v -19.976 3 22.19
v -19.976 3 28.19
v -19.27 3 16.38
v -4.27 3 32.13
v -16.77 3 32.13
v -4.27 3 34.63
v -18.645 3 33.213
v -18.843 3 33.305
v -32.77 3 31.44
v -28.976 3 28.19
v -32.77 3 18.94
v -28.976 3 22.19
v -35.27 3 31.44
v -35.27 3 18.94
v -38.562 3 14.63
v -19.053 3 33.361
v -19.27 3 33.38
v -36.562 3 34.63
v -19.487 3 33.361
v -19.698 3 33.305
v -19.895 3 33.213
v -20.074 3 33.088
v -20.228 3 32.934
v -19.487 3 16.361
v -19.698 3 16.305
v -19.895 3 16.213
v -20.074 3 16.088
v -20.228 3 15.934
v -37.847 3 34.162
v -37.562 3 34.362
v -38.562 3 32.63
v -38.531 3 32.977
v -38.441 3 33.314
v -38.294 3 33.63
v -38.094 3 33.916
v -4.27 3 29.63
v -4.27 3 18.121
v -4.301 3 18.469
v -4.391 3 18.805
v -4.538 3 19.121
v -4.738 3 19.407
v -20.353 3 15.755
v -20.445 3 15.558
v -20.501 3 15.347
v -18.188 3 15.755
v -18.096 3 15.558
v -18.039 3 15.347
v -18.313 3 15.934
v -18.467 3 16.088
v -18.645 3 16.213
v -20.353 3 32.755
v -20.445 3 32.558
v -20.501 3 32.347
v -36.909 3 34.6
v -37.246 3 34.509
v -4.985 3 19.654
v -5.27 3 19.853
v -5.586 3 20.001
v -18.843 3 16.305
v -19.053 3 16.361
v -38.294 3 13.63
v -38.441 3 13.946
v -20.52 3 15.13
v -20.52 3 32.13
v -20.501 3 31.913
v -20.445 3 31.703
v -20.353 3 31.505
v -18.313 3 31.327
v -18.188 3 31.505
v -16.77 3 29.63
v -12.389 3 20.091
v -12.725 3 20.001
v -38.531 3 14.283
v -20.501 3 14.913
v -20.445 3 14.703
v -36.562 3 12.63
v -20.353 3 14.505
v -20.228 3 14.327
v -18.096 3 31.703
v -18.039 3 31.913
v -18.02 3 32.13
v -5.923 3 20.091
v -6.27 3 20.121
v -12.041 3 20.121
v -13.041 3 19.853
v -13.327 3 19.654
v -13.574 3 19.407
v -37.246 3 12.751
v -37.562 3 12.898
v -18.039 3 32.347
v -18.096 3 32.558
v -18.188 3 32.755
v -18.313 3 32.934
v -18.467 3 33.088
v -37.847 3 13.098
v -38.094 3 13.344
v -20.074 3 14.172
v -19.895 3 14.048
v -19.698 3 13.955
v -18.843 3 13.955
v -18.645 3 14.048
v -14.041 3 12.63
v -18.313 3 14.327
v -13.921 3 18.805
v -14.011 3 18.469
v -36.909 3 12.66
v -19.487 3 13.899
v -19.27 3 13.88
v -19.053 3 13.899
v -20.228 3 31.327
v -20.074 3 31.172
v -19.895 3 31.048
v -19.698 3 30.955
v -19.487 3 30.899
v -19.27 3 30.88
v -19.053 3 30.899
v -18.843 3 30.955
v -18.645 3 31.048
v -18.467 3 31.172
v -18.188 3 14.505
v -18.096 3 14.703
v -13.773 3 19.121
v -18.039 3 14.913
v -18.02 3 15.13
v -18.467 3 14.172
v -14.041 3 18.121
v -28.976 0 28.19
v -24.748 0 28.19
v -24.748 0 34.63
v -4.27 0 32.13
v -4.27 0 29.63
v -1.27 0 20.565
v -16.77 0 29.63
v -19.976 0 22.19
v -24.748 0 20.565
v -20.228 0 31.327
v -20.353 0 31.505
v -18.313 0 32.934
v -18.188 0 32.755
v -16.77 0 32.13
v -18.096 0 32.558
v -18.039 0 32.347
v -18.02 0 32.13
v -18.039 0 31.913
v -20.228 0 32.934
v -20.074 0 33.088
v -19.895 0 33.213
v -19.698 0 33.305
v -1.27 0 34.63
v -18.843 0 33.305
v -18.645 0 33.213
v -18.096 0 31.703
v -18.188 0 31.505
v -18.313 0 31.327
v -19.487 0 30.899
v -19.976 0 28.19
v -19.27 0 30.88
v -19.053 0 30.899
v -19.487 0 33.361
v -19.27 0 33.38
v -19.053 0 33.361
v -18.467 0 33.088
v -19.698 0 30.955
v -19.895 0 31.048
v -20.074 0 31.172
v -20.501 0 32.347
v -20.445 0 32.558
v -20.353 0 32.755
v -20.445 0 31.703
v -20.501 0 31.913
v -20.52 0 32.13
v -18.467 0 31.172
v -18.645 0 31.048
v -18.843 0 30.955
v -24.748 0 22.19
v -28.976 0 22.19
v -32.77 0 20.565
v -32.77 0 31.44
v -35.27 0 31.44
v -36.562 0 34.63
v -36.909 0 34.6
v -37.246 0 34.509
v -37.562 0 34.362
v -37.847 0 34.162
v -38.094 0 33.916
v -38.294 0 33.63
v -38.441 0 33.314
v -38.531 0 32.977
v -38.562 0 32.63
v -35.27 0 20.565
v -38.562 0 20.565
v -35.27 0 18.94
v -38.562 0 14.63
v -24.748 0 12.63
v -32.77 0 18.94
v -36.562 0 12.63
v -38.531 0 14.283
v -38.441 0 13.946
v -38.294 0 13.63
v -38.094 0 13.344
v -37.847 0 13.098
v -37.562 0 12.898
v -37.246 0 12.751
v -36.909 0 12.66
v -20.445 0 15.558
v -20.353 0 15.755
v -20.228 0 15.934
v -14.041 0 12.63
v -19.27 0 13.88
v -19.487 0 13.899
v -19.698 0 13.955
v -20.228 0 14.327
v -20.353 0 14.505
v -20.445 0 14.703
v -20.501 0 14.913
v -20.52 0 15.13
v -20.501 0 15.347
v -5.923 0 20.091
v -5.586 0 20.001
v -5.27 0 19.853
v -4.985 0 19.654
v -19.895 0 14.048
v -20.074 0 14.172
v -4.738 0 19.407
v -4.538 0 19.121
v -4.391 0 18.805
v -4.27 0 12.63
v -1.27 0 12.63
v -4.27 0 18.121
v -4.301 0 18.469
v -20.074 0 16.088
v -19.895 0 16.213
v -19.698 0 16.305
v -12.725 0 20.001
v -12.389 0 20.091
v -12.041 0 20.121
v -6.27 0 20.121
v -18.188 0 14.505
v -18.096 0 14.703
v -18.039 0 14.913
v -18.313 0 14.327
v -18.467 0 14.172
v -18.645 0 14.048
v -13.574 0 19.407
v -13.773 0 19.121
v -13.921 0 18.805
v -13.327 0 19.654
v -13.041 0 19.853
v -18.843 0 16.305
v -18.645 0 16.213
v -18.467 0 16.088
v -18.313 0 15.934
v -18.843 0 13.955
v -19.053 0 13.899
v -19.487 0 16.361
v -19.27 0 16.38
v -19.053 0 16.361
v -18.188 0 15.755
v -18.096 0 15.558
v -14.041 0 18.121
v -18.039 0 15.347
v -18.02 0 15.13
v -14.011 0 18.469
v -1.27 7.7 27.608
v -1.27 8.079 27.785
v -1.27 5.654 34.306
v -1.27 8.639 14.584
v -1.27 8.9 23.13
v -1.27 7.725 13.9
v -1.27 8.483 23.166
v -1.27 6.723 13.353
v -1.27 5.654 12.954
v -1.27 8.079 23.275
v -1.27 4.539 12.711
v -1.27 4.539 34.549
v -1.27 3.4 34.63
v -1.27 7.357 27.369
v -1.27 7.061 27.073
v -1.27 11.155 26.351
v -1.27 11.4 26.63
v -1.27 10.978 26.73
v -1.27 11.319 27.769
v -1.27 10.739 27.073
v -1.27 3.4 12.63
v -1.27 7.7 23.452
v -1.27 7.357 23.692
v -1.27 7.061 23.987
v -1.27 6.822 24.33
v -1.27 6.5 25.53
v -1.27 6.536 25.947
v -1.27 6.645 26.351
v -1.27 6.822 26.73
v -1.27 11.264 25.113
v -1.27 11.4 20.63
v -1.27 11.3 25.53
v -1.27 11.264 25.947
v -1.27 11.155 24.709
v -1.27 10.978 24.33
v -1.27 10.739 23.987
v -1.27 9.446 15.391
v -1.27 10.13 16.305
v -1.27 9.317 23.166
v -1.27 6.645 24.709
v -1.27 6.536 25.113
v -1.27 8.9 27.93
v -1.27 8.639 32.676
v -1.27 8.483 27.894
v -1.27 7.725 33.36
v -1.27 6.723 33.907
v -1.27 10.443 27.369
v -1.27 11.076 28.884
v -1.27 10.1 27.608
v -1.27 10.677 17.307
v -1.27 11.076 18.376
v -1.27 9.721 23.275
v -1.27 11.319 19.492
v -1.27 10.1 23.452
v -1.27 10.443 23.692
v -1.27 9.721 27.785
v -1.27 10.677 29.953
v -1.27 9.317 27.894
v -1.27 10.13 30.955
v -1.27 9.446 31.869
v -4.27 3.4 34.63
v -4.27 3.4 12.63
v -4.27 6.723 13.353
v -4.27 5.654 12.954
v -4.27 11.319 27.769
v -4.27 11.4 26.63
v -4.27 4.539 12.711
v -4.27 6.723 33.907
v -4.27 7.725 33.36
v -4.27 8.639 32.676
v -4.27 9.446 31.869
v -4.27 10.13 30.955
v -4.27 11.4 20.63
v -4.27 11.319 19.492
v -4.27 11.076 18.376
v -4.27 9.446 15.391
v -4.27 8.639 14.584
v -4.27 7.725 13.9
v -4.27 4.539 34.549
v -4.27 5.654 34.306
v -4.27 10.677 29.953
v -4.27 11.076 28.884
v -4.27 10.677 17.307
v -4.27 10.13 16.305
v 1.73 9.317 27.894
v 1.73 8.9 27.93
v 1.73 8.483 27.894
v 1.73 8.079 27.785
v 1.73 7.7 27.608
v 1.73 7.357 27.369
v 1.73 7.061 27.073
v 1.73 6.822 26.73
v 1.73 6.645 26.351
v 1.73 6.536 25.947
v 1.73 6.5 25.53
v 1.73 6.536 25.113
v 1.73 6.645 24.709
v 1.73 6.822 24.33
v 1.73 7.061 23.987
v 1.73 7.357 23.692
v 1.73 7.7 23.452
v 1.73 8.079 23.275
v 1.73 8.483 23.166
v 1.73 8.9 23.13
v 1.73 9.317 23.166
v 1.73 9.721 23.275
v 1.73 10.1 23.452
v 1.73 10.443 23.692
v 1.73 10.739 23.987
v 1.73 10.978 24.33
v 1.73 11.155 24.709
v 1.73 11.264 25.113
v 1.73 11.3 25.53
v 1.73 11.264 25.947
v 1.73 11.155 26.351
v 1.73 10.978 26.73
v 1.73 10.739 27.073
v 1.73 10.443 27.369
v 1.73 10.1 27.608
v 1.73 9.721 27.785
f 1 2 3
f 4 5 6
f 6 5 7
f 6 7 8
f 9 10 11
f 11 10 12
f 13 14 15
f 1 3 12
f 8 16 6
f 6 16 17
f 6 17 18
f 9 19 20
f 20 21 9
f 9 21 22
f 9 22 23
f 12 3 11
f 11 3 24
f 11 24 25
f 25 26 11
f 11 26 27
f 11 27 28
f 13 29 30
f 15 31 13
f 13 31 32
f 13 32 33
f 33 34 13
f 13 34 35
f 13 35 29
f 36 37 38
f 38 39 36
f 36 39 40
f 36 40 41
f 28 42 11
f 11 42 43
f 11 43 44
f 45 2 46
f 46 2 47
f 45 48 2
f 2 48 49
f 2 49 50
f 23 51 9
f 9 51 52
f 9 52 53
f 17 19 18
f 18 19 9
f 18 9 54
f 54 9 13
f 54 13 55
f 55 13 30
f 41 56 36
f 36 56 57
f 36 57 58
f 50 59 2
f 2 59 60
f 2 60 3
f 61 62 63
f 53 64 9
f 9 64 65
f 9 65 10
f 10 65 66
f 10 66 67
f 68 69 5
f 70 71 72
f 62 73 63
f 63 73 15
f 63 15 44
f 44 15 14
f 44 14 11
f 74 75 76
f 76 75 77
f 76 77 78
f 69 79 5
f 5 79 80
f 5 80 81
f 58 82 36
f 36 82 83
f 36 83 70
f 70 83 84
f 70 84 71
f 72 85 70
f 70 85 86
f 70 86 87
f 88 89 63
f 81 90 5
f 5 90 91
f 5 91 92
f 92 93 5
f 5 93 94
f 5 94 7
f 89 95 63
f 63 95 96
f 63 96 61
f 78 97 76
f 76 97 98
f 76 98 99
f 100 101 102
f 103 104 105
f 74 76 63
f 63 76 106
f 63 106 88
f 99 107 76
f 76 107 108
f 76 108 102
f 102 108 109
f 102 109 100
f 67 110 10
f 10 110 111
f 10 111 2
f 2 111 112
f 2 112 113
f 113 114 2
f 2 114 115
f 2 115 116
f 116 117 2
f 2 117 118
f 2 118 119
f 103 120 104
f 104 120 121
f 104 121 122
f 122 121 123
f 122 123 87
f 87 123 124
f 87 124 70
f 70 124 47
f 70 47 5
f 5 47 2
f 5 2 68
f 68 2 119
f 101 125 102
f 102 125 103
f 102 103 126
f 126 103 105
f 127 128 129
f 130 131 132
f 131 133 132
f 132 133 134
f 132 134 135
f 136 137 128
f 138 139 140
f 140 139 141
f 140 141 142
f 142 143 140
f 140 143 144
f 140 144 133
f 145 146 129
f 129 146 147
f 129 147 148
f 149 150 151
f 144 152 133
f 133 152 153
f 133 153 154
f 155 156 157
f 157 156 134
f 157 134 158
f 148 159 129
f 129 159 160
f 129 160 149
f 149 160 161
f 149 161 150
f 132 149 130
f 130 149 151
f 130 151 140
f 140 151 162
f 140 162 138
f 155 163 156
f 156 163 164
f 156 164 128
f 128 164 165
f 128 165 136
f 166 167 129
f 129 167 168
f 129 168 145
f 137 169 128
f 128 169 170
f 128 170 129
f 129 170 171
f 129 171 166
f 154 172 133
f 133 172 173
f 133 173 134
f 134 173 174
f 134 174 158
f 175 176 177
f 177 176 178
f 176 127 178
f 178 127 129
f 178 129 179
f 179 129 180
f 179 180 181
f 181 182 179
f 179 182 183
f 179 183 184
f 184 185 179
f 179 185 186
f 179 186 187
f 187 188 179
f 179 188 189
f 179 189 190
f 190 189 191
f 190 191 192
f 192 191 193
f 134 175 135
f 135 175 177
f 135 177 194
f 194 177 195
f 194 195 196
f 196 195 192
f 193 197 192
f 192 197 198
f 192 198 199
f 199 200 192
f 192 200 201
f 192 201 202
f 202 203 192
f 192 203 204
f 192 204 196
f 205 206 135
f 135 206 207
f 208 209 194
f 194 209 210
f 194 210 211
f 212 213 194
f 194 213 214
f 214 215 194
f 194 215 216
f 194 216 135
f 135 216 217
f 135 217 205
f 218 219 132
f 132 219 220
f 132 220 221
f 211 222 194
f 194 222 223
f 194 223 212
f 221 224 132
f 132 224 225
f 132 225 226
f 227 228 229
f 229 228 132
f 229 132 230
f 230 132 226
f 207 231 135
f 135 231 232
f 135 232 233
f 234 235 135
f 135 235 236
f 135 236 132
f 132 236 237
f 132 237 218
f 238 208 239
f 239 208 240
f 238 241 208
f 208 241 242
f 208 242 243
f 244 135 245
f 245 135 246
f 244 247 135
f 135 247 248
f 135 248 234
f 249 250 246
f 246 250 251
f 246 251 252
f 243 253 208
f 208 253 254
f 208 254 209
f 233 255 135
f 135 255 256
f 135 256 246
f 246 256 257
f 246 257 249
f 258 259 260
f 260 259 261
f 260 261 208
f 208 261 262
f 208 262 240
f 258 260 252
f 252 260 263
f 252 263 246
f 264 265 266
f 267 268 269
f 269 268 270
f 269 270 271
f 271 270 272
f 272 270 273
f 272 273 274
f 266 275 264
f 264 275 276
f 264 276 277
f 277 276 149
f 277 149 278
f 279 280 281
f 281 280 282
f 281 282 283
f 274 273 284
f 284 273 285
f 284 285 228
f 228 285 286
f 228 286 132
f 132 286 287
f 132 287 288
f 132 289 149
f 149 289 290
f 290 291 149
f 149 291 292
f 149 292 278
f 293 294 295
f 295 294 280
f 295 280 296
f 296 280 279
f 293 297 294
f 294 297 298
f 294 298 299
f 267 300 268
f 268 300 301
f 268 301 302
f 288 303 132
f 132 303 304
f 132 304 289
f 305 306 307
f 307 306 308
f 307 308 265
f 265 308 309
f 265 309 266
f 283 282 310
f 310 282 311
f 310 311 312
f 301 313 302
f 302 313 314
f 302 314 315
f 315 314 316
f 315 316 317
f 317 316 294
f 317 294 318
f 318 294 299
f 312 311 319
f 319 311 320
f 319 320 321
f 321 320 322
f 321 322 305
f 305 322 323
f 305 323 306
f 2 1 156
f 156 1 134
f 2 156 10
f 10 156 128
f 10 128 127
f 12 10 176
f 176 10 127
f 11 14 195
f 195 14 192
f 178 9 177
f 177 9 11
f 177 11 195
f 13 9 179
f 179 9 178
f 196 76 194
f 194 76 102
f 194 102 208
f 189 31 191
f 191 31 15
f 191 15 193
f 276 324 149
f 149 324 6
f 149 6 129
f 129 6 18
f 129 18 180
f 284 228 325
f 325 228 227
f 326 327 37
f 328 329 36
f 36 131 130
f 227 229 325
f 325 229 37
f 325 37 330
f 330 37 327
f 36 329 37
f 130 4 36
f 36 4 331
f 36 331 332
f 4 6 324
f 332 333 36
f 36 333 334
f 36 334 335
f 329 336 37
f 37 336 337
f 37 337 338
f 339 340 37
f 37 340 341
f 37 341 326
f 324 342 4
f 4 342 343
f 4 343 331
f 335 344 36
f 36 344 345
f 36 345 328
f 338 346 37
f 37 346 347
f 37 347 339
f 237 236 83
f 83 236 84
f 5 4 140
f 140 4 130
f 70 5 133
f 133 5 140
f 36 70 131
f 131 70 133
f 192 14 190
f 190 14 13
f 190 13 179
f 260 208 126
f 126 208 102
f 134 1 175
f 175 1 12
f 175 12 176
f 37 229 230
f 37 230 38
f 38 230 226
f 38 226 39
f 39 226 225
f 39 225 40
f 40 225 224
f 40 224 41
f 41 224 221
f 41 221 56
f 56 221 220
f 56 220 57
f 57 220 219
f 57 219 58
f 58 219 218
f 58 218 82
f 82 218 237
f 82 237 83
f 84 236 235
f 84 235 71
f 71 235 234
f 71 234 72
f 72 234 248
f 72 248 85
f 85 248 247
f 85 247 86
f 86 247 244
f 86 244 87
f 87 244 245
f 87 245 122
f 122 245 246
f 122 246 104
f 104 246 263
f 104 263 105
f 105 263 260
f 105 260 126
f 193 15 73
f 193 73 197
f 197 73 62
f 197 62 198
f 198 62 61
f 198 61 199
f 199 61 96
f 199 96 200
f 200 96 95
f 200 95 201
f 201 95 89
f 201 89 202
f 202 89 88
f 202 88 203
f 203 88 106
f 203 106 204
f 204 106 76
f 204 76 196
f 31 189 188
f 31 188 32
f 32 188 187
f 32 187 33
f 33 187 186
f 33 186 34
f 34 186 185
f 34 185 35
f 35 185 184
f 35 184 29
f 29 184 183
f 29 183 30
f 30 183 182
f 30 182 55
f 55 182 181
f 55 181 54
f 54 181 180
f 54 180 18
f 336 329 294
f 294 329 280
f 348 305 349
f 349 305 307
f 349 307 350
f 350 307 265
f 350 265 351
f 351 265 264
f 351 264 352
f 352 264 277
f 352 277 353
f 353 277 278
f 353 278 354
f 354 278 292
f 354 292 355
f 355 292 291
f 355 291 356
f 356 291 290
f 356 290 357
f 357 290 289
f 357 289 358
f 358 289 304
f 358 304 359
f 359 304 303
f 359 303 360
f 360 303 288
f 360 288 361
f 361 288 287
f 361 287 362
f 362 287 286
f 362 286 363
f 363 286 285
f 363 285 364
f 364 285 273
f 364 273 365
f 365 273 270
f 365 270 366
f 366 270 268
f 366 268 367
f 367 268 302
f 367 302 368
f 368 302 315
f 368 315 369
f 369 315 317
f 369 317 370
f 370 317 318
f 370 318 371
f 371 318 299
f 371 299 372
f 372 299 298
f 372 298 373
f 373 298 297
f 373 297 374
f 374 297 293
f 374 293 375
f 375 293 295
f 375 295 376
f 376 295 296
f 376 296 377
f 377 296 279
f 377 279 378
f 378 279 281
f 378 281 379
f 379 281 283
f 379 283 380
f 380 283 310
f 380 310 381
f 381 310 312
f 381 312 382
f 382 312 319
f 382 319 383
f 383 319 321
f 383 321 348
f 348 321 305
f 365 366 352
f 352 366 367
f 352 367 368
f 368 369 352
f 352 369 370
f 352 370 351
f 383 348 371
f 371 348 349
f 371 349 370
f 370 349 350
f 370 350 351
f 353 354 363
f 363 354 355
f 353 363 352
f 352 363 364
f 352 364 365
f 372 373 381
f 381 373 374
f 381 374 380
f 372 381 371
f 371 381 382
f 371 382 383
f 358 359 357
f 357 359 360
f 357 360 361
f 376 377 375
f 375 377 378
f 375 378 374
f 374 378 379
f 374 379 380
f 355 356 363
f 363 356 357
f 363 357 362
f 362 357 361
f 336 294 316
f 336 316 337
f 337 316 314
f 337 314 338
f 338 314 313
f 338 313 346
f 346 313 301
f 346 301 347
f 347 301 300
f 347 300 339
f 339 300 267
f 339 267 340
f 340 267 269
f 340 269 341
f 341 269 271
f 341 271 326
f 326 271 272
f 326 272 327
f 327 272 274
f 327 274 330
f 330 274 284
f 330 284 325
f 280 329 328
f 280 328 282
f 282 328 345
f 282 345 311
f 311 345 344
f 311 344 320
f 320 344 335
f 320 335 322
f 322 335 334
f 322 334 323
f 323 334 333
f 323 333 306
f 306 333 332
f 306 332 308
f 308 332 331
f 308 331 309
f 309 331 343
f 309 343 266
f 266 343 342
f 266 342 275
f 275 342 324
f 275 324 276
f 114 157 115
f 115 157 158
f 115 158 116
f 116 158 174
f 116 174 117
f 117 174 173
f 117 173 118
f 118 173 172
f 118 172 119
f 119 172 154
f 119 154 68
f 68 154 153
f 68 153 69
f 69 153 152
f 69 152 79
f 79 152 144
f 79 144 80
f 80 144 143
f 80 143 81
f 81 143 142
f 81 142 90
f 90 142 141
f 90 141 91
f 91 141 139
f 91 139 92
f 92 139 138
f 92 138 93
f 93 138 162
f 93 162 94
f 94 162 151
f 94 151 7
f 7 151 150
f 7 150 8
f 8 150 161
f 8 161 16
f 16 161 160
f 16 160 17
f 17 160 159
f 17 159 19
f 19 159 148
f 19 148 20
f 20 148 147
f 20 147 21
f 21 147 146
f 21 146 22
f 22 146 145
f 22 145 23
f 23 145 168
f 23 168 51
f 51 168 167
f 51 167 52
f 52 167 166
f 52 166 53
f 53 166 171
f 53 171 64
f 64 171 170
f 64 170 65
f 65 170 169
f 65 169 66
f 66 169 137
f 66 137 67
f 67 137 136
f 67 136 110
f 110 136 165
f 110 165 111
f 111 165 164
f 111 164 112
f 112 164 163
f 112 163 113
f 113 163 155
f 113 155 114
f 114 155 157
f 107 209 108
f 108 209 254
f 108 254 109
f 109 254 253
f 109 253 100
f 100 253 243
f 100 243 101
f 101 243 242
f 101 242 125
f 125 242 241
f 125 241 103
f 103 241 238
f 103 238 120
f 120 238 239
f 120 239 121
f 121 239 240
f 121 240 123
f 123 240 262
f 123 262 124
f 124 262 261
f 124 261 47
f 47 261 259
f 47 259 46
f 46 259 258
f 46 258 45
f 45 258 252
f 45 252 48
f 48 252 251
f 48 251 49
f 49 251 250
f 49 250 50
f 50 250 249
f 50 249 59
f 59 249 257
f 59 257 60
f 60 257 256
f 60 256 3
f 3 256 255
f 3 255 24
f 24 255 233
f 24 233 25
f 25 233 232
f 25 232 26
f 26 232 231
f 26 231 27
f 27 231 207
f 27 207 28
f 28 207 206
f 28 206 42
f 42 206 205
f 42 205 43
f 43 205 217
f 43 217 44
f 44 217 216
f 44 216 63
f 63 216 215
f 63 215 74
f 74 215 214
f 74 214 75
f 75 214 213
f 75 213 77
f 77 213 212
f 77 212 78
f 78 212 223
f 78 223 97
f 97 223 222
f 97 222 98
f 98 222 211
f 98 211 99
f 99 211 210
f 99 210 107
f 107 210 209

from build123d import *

# Parameters (mm, degrees)
SKETCH1_W           = 12.5
SKETCH1_H           = 2.5
SKETCH1_W_2         = 2.5
SKETCH1_H_2         = 12.5
SKETCH1_W_3         = 9
SKETCH1_H_3         = 6
BOSS_EXTRUDE1_DEPTH = 3
FILLET1_R           = 2
SKETCH1_4_W         = 3
SKETCH1_4_H         = 22
BOSS_EXTRUDE2_DEPTH = 11.4
SKETCH2_R           = 2.4
BOSS_EXTRUDE3_DEPTH = 3
FILLET2_R           = 8
SKETCH1_7_R         = 1.25
CUT_EXTRUDE2_DEPTH  = 54.067966791


with BuildPart() as part:
    # Sketch1 → Boss-Extrude1 (new body)
    with BuildSketch(Plane(origin=(0, 0, 0), x_dir=(1, 0, 0), z_dir=(0, 1, 0))):
        Polygon((-38.561763486, -34.630037485), (-1.270220731, -34.630037485), (-1.270220731, -12.630037485), (-4.270220731, -12.630037485), (-4.270220731, -20.12144272), (-14.041444449, -20.12144272), (-14.041444449, -12.630037485), (-38.561763486, -12.630037485), align=None)
        with Locations((-10.520220731, -30.880037485)):
            Rectangle(SKETCH1_W, SKETCH1_H, mode=Mode.SUBTRACT)
        with Locations((-34.020220731, -25.190037485)):
            Rectangle(SKETCH1_W_2, SKETCH1_H_2, mode=Mode.SUBTRACT)
        with Locations((-24.475907507, -25.190037485)):
            Rectangle(SKETCH1_W_3, SKETCH1_H_3, mode=Mode.SUBTRACT)
    extrude(amount=BOSS_EXTRUDE1_DEPTH)

    # Fillet1
    fillet1_edges = [part.edges().sort_by_distance(p)[0] for p in [
        (-38.561763486, 1.5, 12.630037485),
        (-38.561763486, 1.5, 34.630037485),
        (-1.270220731, 1.5, 34.630037485),
        (-14.041444449, 1.5, 20.12144272),
        (-4.270220731, 1.5, 20.12144272),
    ]]
    fillet(fillet1_edges, radius=FILLET1_R)

    # Sketch1<4> → Boss-Extrude2 (add)
    with BuildSketch(Plane(origin=(0, 0, 0), x_dir=(1, 0, 0), z_dir=(0, 1, 0))):
        with Locations((-2.770220731, -23.630037485)):
            Rectangle(SKETCH1_4_W, SKETCH1_4_H)
    extrude(amount=BOSS_EXTRUDE2_DEPTH)

    # Sketch2 → Boss-Extrude3 (add)
    with BuildSketch(Plane(origin=(-1.270220731, 0, 0), x_dir=(0, 0, -1), z_dir=(1, 0, 0))):
        with Locations((-25.530037485, 8.9)):
            Circle(SKETCH2_R)
    extrude(amount=BOSS_EXTRUDE3_DEPTH)

    # Fillet2
    fillet2_edges = [part.edges().sort_by_distance(p)[0] for p in [
        (-2.770220731, 11.4, 12.630037485),
        (-2.770220731, 11.4, 34.630037485),
    ]]
    fillet(fillet2_edges, radius=FILLET2_R)

    # Sketch1<7> → Cut-Extrude2 (cut, through all)
    with BuildSketch(Plane(origin=(0, 0, 0), x_dir=(1, 0, 0), z_dir=(0, 1, 0))):
        with Locations((-19.270220731, -32.130037485)):
            Circle(SKETCH1_7_R)
        with Locations((-19.270220731, -15.130037485)):
            Circle(SKETCH1_7_R)
    extrude(amount=CUT_EXTRUDE2_DEPTH, mode=Mode.SUBTRACT)


solid = part.part
